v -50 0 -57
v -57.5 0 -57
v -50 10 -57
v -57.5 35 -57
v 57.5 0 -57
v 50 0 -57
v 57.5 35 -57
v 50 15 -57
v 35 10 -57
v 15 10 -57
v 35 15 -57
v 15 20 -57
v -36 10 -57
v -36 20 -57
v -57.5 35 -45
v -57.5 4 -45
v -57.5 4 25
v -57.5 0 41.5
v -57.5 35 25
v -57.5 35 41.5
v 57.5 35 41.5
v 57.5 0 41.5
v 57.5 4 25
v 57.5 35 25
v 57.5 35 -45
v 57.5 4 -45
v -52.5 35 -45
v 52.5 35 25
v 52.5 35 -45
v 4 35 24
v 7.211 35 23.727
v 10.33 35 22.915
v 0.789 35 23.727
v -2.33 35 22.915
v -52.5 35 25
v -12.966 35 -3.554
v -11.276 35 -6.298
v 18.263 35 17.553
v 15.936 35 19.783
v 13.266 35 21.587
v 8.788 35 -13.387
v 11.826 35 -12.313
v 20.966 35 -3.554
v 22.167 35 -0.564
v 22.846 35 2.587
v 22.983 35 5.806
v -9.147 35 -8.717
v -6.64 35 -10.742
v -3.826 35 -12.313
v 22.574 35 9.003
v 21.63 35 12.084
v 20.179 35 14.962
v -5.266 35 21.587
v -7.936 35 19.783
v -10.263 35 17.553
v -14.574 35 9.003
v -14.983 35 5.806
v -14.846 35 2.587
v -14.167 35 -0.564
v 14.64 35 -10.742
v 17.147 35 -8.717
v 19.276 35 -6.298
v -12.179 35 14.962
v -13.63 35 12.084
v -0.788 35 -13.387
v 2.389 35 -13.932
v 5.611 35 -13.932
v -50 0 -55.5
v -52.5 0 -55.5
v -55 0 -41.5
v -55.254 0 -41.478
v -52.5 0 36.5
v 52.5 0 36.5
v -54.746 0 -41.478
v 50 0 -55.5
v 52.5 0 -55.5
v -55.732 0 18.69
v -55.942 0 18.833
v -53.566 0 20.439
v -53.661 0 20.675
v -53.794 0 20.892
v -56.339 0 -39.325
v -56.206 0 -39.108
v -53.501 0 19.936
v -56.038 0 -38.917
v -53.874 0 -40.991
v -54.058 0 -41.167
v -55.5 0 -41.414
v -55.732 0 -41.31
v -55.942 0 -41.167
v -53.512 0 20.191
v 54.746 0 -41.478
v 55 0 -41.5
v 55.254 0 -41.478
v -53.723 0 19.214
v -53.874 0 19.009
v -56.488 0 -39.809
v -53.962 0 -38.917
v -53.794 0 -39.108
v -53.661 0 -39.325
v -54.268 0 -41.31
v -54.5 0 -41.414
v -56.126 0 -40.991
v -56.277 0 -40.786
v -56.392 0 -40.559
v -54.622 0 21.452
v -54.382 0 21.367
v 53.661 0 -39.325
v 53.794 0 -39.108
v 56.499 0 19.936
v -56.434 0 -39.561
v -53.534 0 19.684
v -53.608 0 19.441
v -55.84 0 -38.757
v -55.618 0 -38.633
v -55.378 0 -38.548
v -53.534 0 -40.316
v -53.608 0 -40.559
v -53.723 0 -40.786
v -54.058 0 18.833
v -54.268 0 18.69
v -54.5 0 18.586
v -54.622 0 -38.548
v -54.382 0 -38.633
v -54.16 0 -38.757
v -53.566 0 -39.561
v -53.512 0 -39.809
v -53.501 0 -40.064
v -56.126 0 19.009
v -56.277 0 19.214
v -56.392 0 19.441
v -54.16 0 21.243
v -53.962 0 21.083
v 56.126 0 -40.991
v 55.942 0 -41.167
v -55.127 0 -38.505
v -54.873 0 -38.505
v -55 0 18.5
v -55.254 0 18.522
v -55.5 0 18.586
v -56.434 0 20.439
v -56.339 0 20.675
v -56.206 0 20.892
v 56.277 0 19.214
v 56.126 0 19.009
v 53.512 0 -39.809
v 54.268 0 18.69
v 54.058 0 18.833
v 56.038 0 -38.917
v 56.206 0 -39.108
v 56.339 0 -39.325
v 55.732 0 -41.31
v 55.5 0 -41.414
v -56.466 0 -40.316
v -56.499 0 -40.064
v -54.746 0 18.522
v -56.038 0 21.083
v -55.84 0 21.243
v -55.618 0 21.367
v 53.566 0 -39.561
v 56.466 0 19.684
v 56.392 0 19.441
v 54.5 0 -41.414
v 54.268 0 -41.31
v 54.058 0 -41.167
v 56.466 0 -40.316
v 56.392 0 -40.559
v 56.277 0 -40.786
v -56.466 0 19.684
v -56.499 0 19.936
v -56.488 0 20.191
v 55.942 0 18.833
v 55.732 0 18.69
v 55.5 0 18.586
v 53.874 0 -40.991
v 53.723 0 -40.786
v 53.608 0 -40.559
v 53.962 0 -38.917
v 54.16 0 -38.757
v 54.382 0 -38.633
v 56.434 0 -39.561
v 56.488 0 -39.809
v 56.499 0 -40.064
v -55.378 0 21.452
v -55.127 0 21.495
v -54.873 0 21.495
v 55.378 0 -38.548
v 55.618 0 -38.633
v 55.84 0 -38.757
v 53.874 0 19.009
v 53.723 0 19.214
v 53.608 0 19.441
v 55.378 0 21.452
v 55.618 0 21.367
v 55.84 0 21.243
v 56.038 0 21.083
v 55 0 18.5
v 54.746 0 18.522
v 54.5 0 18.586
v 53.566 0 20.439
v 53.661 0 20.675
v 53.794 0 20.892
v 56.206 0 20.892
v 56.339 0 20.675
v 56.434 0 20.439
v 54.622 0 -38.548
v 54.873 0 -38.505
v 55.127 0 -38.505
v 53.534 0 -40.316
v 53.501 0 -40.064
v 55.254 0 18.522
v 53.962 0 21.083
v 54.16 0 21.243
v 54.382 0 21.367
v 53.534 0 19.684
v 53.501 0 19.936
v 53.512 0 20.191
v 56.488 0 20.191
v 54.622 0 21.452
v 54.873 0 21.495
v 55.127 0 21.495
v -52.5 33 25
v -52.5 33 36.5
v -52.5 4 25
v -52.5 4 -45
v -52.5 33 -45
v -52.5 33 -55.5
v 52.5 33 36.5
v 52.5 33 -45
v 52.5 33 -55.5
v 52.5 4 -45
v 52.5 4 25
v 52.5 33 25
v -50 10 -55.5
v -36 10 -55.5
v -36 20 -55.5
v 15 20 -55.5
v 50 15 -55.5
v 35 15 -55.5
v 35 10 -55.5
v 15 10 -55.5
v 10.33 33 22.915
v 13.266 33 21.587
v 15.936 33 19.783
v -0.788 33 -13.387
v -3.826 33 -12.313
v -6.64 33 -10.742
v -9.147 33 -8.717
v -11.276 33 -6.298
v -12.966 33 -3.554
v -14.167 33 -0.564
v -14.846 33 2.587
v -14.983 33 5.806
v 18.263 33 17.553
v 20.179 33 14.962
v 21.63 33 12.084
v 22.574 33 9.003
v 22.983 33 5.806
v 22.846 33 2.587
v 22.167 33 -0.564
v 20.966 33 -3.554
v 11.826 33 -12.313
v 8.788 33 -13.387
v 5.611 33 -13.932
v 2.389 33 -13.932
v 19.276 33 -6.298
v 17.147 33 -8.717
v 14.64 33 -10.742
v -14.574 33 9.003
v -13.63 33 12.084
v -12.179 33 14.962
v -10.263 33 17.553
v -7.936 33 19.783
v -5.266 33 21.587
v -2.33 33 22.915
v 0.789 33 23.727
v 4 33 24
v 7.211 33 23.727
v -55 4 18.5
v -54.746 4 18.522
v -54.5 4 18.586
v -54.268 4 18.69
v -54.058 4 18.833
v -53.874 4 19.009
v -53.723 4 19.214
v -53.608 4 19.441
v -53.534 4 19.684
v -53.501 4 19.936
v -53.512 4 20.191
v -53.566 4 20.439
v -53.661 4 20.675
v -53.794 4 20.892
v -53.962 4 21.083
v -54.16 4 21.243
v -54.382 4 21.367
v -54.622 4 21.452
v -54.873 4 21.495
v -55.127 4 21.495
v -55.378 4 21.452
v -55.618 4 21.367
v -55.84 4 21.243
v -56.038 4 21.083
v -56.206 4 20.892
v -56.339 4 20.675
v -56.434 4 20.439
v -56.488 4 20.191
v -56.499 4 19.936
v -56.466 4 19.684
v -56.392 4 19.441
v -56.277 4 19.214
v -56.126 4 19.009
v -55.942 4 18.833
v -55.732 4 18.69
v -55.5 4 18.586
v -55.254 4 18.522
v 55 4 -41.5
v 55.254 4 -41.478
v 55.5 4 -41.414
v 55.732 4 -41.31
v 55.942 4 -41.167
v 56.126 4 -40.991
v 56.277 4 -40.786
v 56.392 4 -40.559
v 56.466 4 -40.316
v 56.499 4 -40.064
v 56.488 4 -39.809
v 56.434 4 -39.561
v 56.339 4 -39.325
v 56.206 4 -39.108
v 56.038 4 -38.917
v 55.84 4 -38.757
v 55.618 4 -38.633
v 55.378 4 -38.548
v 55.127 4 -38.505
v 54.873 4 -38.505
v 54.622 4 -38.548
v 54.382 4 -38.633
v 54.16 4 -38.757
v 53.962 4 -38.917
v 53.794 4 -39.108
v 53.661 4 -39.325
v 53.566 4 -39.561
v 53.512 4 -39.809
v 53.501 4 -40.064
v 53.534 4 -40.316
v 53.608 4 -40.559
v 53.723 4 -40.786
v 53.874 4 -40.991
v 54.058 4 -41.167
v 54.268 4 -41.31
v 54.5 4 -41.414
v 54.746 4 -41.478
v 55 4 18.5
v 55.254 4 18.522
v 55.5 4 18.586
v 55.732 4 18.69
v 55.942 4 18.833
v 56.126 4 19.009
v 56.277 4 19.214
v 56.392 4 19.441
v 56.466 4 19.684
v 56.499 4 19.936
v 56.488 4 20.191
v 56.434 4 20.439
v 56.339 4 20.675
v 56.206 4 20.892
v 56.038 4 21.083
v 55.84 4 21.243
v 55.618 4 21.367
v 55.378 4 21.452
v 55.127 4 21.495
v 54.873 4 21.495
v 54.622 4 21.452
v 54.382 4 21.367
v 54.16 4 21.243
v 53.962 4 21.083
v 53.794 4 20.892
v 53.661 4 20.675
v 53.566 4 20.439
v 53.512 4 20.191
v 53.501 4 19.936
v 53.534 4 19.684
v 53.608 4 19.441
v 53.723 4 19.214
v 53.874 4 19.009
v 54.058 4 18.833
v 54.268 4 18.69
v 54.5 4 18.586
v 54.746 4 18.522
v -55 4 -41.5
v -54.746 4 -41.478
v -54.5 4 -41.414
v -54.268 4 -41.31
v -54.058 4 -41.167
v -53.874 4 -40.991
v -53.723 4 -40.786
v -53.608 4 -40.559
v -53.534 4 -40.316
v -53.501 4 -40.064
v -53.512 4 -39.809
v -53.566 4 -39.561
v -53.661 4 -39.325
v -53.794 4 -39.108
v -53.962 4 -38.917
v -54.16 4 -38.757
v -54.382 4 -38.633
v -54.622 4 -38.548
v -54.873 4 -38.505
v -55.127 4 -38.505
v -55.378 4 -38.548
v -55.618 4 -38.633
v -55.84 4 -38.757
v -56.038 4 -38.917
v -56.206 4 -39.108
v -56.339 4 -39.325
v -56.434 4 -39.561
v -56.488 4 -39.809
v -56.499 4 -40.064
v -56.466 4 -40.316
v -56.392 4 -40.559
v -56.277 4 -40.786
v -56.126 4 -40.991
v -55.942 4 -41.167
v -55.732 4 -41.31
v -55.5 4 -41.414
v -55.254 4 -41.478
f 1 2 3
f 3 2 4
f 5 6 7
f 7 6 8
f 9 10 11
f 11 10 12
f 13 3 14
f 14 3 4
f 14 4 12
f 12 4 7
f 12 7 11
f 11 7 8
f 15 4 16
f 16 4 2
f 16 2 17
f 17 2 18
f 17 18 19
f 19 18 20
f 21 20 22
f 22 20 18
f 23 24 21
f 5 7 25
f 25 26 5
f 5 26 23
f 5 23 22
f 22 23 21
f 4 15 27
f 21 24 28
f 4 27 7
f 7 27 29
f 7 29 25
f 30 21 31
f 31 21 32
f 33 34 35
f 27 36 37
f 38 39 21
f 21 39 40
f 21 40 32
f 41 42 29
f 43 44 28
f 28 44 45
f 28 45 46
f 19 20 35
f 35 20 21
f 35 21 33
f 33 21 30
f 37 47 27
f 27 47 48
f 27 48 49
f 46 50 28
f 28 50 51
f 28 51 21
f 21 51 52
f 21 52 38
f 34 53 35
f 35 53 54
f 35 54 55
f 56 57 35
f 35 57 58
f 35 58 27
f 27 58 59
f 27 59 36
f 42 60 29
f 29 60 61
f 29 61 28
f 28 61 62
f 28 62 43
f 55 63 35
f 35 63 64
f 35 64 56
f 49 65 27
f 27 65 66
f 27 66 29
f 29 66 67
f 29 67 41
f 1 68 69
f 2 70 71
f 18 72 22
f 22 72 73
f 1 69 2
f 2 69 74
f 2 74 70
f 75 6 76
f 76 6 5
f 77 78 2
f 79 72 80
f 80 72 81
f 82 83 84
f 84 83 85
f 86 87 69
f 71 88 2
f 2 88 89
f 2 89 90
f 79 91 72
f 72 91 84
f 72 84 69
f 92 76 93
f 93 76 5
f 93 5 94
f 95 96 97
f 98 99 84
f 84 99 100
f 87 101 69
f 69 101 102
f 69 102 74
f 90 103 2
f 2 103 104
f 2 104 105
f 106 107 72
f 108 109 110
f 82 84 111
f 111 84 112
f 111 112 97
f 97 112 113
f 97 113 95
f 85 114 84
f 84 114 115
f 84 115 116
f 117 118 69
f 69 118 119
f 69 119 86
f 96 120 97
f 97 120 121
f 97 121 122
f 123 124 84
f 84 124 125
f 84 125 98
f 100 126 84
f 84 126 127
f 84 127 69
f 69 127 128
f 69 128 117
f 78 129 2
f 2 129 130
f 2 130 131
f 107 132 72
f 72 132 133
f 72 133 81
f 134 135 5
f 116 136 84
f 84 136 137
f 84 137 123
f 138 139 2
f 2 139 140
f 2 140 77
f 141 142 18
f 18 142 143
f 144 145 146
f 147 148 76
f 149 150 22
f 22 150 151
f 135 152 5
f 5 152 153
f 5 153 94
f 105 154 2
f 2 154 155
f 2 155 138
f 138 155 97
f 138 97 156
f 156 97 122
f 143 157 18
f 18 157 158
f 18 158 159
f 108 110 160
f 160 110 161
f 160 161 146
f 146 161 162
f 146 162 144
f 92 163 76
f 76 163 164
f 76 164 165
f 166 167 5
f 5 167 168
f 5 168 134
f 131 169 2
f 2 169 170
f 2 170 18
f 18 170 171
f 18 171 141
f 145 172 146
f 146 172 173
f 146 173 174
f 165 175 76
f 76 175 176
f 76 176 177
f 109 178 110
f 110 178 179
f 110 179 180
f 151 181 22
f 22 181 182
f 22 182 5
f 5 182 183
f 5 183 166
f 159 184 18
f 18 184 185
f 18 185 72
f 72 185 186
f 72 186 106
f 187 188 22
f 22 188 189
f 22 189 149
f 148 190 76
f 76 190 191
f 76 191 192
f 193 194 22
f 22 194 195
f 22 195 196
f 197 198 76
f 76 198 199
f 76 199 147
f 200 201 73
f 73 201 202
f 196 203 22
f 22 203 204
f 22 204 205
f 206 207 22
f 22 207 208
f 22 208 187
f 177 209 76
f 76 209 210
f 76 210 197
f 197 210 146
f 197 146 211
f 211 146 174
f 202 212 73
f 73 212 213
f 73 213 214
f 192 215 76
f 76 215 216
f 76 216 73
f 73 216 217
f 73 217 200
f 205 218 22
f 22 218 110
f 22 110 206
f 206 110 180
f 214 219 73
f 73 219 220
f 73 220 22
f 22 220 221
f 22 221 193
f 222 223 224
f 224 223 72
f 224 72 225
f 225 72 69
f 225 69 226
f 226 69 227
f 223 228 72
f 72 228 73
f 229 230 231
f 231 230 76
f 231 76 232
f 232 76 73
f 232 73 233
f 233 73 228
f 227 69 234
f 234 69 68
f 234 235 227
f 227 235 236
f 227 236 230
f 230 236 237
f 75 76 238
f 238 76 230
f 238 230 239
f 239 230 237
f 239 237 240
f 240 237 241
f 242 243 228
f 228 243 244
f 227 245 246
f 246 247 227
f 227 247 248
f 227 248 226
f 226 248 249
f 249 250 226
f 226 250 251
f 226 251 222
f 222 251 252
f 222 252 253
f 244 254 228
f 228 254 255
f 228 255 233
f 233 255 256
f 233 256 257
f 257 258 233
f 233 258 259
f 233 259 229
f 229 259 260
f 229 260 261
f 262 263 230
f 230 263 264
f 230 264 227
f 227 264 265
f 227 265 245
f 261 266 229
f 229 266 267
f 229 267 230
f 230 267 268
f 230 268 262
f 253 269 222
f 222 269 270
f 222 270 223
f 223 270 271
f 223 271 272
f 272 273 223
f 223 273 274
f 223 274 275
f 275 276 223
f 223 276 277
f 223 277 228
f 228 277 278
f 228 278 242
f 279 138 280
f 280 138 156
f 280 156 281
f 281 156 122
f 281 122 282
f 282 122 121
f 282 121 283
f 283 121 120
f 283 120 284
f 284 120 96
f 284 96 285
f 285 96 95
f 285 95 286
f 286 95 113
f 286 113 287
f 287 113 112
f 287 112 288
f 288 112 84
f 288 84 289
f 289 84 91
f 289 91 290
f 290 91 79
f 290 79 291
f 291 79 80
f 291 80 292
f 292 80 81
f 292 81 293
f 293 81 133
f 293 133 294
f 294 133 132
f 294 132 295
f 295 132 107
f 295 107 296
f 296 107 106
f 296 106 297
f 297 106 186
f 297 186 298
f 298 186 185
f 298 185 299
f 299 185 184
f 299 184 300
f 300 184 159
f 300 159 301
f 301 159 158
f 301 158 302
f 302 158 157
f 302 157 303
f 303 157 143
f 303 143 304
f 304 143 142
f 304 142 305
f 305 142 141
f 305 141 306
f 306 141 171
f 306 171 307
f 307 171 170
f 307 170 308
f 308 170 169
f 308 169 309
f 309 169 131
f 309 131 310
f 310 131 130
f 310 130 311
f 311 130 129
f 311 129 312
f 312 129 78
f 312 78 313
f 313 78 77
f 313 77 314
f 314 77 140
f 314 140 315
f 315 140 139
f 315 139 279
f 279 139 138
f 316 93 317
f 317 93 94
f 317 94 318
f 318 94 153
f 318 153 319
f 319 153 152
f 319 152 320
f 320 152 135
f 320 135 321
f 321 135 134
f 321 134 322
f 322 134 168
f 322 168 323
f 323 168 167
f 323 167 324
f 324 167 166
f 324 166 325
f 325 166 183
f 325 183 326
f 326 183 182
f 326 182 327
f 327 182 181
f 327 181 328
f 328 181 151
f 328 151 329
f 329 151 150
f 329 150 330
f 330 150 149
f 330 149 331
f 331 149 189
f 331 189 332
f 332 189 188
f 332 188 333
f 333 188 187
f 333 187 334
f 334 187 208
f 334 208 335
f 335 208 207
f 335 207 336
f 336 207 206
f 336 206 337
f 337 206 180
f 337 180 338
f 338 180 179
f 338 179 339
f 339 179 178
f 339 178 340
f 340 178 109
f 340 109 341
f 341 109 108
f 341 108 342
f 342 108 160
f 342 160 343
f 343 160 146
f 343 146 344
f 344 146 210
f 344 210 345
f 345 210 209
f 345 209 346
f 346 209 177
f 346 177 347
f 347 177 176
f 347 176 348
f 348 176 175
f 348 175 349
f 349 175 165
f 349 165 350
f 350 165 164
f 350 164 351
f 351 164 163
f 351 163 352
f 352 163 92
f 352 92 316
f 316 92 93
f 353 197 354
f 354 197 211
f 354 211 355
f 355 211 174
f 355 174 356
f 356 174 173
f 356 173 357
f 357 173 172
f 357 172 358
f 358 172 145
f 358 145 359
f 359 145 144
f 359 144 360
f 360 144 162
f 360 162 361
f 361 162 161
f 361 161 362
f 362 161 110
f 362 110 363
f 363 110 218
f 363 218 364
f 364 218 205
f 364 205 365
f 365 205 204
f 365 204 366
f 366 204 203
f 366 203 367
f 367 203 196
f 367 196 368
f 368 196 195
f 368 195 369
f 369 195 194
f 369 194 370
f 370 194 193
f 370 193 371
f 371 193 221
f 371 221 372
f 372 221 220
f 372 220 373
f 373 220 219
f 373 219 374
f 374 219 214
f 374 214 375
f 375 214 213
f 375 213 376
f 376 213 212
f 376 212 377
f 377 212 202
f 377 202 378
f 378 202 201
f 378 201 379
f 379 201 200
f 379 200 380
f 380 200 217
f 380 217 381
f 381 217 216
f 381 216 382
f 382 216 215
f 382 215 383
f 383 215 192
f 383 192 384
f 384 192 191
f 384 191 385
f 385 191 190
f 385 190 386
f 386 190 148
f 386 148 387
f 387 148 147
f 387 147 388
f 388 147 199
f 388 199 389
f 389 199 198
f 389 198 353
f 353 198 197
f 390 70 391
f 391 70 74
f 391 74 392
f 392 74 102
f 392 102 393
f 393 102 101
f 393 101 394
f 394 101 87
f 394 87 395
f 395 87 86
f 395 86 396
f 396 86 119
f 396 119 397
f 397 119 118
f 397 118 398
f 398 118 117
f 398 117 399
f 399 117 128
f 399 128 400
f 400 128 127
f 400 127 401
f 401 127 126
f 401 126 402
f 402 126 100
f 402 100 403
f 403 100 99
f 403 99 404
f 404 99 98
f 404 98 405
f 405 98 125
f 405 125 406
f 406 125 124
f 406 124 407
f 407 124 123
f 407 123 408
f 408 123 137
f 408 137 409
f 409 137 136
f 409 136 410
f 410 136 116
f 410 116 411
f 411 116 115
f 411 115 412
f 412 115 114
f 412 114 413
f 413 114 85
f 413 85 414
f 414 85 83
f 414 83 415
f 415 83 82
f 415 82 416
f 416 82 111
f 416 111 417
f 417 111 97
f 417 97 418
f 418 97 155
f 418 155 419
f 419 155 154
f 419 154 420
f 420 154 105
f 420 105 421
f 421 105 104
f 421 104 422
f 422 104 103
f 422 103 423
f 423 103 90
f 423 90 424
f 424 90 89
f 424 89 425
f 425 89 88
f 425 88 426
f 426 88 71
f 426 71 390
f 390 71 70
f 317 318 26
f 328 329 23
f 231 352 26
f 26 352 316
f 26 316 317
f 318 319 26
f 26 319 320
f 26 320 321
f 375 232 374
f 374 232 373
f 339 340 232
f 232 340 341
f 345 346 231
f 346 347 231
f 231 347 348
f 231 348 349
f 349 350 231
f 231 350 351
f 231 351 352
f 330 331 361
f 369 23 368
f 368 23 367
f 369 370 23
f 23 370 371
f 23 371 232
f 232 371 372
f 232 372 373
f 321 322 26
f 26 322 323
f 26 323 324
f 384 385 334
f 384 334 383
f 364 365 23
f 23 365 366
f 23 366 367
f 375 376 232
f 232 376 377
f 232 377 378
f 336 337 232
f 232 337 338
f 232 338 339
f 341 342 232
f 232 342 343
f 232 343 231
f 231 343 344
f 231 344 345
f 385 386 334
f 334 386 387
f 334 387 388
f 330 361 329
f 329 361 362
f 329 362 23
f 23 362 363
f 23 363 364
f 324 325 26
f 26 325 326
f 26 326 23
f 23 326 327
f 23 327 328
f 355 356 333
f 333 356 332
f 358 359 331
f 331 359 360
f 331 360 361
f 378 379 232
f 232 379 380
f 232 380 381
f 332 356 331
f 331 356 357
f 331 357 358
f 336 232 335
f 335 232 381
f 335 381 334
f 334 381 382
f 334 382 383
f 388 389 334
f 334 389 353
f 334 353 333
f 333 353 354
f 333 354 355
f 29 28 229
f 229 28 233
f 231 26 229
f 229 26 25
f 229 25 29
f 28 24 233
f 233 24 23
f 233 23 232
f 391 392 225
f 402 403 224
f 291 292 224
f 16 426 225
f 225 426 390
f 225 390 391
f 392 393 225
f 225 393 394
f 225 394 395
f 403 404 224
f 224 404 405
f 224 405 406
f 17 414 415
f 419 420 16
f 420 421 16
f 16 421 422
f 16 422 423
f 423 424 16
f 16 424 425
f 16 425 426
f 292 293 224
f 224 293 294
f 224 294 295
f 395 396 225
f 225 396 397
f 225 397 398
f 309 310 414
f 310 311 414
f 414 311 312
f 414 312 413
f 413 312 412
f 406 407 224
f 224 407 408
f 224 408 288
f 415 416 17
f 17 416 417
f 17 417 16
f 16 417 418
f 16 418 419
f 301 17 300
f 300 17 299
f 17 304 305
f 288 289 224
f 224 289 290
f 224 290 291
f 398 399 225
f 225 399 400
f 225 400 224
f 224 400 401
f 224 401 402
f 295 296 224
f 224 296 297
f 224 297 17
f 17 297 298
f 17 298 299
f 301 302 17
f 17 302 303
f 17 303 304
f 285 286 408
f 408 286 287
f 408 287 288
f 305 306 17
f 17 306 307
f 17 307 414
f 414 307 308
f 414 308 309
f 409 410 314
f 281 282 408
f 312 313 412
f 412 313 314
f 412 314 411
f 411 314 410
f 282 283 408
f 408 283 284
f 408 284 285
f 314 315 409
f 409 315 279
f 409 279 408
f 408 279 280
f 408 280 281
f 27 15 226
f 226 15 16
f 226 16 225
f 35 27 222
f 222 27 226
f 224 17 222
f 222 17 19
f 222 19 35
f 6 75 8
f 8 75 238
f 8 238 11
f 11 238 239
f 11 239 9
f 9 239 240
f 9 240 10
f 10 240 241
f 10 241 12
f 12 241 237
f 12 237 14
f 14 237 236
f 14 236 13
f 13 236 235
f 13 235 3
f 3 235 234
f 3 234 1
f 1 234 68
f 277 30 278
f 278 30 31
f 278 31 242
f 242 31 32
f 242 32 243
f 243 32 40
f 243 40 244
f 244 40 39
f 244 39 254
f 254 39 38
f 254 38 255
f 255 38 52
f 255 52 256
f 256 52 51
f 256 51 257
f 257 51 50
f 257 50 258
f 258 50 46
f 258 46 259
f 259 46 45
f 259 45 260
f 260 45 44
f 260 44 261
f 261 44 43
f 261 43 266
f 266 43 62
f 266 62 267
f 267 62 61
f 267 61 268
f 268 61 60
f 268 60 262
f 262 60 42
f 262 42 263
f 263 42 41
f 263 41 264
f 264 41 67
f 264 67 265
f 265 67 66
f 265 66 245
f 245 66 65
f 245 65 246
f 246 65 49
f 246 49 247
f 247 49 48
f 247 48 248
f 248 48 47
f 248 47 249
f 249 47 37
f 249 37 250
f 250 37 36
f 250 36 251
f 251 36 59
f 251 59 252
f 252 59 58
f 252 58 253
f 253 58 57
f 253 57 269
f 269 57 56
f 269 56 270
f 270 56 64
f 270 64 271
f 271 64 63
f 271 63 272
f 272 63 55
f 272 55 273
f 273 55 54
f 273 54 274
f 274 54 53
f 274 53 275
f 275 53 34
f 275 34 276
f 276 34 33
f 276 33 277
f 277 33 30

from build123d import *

# Parameters (mm, degrees)
SKETCH_1_W          = 115
SKETCH_1_H          = 98.5
EXTRUDE_1_DEPTH     = 35
SKETCH_2_W          = 105
SKETCH_2_H          = 92
CUT_EXTRUDE_1_DEPTH = 33
SKETCH_4_R          = 1.5
CUT_EXTRUDE_2_DEPTH = 3
SKETCH_4_2_R        = 1.5
CUT_EXTRUDE_3_DEPTH = 4
SKETCH_5_W          = 5
SKETCH_5_H          = 70
CUT_EXTRUDE_4_DEPTH = 31
SKETCH_6_R          = 19
CUT_EXTRUDE_5_DEPTH = 2
CUT_EXTRUDE_6_DEPTH = 2
SKETCH_6_3_R        = 19
EXTRUDE_2_DEPTH     = 2
SKETCH_6_5_R        = 19
CUT_EXTRUDE_7_DEPTH = 2


with BuildPart() as part:
    # 草图1 → 凸台-拉伸1 (new body)
    with BuildSketch(Plane(origin=(0, 0, 0), x_dir=(1, 0, 0), z_dir=(0, 1, 0))):
        with Locations((0, 7.75)):
            Rectangle(SKETCH_1_W, SKETCH_1_H)
    extrude(amount=EXTRUDE_1_DEPTH)

    # 草图2 → 切除-拉伸1 (cut)
    with BuildSketch(Plane.XZ):
        with Locations((0, -9.5)):
            Rectangle(SKETCH_2_W, SKETCH_2_H)
    extrude(amount=-CUT_EXTRUDE_1_DEPTH, mode=Mode.SUBTRACT)

    # 草图4 → 切除-拉伸2 (cut)
    with BuildSketch(Plane(origin=(0, 0, 0), x_dir=(-1, 0, 0), z_dir=(0, -1, 0))):
        with Locations((55, -20)):
            Circle(SKETCH_4_R)
        with Locations((55, 40)):
            Circle(SKETCH_4_R)
        with Locations((-55, -20)):
            Circle(SKETCH_4_R)
        with Locations((-55, 40)):
            Circle(SKETCH_4_R)
    extrude(amount=-CUT_EXTRUDE_2_DEPTH, mode=Mode.SUBTRACT)

    # 草图4<2> → 切除-拉伸3 (cut)
    with BuildSketch(Plane(origin=(0, 0, 0), x_dir=(-1, 0, 0), z_dir=(0, -1, 0))):
        with Locations((55, -20)):
            Circle(SKETCH_4_2_R)
        with Locations((55, 40)):
            Circle(SKETCH_4_2_R)
        with Locations((-55, -20)):
            Circle(SKETCH_4_2_R)
        with Locations((-55, 40)):
            Circle(SKETCH_4_2_R)
    extrude(amount=-CUT_EXTRUDE_3_DEPTH, mode=Mode.SUBTRACT)

    # 草图5 → 切除-拉伸4 (cut)
    with BuildSketch(Plane(origin=(0, 35, 0), x_dir=(1, 0, 0), z_dir=(0, 1, 0))):
        with Locations((-55, 10)):
            Rectangle(SKETCH_5_W, SKETCH_5_H)
        with Locations((55, 10)):
            Rectangle(SKETCH_5_W, SKETCH_5_H)
    extrude(amount=-CUT_EXTRUDE_4_DEPTH, mode=Mode.SUBTRACT)

    # 草图6 → 切除-拉伸5 (cut)
    with BuildSketch(Plane(origin=(0, 35, 0), x_dir=(1, 0, 0), z_dir=(0, 1, 0))):
        with Locations((4, -5)):
            Circle(SKETCH_6_R)
    extrude(amount=-CUT_EXTRUDE_5_DEPTH, mode=Mode.SUBTRACT)

    # 草图7 → 切除-拉伸6 (cut)
    with BuildSketch(Plane(origin=(0, 0, -57), x_dir=(-1, 0, 0), z_dir=(0, 0, -1))):
        Polygon((-50, 0), (50, 0), (50, 10), (36, 10), (36, 20), (-15, 20), (-15, 10), (-35, 10), (-35, 15), (-50, 15), (-50, 10), align=None)
    extrude(amount=-CUT_EXTRUDE_6_DEPTH, mode=Mode.SUBTRACT)

    # 草图6<3> → 凸台-拉伸2 (add)
    with BuildSketch(Plane(origin=(0, 35, 0), x_dir=(1, 0, 0), z_dir=(0, 1, 0))):
        with Locations((4, -5)):
            Circle(SKETCH_6_3_R)
    extrude(amount=-EXTRUDE_2_DEPTH)

    # 草图6<5> → 切除-拉伸7 (cut)
    with BuildSketch(Plane(origin=(0, 35, 0), x_dir=(1, 0, 0), z_dir=(0, 1, 0))):
        with Locations((4, -5)):
            Circle(SKETCH_6_5_R)
    extrude(amount=-CUT_EXTRUDE_7_DEPTH, mode=Mode.SUBTRACT)


solid = part.part
